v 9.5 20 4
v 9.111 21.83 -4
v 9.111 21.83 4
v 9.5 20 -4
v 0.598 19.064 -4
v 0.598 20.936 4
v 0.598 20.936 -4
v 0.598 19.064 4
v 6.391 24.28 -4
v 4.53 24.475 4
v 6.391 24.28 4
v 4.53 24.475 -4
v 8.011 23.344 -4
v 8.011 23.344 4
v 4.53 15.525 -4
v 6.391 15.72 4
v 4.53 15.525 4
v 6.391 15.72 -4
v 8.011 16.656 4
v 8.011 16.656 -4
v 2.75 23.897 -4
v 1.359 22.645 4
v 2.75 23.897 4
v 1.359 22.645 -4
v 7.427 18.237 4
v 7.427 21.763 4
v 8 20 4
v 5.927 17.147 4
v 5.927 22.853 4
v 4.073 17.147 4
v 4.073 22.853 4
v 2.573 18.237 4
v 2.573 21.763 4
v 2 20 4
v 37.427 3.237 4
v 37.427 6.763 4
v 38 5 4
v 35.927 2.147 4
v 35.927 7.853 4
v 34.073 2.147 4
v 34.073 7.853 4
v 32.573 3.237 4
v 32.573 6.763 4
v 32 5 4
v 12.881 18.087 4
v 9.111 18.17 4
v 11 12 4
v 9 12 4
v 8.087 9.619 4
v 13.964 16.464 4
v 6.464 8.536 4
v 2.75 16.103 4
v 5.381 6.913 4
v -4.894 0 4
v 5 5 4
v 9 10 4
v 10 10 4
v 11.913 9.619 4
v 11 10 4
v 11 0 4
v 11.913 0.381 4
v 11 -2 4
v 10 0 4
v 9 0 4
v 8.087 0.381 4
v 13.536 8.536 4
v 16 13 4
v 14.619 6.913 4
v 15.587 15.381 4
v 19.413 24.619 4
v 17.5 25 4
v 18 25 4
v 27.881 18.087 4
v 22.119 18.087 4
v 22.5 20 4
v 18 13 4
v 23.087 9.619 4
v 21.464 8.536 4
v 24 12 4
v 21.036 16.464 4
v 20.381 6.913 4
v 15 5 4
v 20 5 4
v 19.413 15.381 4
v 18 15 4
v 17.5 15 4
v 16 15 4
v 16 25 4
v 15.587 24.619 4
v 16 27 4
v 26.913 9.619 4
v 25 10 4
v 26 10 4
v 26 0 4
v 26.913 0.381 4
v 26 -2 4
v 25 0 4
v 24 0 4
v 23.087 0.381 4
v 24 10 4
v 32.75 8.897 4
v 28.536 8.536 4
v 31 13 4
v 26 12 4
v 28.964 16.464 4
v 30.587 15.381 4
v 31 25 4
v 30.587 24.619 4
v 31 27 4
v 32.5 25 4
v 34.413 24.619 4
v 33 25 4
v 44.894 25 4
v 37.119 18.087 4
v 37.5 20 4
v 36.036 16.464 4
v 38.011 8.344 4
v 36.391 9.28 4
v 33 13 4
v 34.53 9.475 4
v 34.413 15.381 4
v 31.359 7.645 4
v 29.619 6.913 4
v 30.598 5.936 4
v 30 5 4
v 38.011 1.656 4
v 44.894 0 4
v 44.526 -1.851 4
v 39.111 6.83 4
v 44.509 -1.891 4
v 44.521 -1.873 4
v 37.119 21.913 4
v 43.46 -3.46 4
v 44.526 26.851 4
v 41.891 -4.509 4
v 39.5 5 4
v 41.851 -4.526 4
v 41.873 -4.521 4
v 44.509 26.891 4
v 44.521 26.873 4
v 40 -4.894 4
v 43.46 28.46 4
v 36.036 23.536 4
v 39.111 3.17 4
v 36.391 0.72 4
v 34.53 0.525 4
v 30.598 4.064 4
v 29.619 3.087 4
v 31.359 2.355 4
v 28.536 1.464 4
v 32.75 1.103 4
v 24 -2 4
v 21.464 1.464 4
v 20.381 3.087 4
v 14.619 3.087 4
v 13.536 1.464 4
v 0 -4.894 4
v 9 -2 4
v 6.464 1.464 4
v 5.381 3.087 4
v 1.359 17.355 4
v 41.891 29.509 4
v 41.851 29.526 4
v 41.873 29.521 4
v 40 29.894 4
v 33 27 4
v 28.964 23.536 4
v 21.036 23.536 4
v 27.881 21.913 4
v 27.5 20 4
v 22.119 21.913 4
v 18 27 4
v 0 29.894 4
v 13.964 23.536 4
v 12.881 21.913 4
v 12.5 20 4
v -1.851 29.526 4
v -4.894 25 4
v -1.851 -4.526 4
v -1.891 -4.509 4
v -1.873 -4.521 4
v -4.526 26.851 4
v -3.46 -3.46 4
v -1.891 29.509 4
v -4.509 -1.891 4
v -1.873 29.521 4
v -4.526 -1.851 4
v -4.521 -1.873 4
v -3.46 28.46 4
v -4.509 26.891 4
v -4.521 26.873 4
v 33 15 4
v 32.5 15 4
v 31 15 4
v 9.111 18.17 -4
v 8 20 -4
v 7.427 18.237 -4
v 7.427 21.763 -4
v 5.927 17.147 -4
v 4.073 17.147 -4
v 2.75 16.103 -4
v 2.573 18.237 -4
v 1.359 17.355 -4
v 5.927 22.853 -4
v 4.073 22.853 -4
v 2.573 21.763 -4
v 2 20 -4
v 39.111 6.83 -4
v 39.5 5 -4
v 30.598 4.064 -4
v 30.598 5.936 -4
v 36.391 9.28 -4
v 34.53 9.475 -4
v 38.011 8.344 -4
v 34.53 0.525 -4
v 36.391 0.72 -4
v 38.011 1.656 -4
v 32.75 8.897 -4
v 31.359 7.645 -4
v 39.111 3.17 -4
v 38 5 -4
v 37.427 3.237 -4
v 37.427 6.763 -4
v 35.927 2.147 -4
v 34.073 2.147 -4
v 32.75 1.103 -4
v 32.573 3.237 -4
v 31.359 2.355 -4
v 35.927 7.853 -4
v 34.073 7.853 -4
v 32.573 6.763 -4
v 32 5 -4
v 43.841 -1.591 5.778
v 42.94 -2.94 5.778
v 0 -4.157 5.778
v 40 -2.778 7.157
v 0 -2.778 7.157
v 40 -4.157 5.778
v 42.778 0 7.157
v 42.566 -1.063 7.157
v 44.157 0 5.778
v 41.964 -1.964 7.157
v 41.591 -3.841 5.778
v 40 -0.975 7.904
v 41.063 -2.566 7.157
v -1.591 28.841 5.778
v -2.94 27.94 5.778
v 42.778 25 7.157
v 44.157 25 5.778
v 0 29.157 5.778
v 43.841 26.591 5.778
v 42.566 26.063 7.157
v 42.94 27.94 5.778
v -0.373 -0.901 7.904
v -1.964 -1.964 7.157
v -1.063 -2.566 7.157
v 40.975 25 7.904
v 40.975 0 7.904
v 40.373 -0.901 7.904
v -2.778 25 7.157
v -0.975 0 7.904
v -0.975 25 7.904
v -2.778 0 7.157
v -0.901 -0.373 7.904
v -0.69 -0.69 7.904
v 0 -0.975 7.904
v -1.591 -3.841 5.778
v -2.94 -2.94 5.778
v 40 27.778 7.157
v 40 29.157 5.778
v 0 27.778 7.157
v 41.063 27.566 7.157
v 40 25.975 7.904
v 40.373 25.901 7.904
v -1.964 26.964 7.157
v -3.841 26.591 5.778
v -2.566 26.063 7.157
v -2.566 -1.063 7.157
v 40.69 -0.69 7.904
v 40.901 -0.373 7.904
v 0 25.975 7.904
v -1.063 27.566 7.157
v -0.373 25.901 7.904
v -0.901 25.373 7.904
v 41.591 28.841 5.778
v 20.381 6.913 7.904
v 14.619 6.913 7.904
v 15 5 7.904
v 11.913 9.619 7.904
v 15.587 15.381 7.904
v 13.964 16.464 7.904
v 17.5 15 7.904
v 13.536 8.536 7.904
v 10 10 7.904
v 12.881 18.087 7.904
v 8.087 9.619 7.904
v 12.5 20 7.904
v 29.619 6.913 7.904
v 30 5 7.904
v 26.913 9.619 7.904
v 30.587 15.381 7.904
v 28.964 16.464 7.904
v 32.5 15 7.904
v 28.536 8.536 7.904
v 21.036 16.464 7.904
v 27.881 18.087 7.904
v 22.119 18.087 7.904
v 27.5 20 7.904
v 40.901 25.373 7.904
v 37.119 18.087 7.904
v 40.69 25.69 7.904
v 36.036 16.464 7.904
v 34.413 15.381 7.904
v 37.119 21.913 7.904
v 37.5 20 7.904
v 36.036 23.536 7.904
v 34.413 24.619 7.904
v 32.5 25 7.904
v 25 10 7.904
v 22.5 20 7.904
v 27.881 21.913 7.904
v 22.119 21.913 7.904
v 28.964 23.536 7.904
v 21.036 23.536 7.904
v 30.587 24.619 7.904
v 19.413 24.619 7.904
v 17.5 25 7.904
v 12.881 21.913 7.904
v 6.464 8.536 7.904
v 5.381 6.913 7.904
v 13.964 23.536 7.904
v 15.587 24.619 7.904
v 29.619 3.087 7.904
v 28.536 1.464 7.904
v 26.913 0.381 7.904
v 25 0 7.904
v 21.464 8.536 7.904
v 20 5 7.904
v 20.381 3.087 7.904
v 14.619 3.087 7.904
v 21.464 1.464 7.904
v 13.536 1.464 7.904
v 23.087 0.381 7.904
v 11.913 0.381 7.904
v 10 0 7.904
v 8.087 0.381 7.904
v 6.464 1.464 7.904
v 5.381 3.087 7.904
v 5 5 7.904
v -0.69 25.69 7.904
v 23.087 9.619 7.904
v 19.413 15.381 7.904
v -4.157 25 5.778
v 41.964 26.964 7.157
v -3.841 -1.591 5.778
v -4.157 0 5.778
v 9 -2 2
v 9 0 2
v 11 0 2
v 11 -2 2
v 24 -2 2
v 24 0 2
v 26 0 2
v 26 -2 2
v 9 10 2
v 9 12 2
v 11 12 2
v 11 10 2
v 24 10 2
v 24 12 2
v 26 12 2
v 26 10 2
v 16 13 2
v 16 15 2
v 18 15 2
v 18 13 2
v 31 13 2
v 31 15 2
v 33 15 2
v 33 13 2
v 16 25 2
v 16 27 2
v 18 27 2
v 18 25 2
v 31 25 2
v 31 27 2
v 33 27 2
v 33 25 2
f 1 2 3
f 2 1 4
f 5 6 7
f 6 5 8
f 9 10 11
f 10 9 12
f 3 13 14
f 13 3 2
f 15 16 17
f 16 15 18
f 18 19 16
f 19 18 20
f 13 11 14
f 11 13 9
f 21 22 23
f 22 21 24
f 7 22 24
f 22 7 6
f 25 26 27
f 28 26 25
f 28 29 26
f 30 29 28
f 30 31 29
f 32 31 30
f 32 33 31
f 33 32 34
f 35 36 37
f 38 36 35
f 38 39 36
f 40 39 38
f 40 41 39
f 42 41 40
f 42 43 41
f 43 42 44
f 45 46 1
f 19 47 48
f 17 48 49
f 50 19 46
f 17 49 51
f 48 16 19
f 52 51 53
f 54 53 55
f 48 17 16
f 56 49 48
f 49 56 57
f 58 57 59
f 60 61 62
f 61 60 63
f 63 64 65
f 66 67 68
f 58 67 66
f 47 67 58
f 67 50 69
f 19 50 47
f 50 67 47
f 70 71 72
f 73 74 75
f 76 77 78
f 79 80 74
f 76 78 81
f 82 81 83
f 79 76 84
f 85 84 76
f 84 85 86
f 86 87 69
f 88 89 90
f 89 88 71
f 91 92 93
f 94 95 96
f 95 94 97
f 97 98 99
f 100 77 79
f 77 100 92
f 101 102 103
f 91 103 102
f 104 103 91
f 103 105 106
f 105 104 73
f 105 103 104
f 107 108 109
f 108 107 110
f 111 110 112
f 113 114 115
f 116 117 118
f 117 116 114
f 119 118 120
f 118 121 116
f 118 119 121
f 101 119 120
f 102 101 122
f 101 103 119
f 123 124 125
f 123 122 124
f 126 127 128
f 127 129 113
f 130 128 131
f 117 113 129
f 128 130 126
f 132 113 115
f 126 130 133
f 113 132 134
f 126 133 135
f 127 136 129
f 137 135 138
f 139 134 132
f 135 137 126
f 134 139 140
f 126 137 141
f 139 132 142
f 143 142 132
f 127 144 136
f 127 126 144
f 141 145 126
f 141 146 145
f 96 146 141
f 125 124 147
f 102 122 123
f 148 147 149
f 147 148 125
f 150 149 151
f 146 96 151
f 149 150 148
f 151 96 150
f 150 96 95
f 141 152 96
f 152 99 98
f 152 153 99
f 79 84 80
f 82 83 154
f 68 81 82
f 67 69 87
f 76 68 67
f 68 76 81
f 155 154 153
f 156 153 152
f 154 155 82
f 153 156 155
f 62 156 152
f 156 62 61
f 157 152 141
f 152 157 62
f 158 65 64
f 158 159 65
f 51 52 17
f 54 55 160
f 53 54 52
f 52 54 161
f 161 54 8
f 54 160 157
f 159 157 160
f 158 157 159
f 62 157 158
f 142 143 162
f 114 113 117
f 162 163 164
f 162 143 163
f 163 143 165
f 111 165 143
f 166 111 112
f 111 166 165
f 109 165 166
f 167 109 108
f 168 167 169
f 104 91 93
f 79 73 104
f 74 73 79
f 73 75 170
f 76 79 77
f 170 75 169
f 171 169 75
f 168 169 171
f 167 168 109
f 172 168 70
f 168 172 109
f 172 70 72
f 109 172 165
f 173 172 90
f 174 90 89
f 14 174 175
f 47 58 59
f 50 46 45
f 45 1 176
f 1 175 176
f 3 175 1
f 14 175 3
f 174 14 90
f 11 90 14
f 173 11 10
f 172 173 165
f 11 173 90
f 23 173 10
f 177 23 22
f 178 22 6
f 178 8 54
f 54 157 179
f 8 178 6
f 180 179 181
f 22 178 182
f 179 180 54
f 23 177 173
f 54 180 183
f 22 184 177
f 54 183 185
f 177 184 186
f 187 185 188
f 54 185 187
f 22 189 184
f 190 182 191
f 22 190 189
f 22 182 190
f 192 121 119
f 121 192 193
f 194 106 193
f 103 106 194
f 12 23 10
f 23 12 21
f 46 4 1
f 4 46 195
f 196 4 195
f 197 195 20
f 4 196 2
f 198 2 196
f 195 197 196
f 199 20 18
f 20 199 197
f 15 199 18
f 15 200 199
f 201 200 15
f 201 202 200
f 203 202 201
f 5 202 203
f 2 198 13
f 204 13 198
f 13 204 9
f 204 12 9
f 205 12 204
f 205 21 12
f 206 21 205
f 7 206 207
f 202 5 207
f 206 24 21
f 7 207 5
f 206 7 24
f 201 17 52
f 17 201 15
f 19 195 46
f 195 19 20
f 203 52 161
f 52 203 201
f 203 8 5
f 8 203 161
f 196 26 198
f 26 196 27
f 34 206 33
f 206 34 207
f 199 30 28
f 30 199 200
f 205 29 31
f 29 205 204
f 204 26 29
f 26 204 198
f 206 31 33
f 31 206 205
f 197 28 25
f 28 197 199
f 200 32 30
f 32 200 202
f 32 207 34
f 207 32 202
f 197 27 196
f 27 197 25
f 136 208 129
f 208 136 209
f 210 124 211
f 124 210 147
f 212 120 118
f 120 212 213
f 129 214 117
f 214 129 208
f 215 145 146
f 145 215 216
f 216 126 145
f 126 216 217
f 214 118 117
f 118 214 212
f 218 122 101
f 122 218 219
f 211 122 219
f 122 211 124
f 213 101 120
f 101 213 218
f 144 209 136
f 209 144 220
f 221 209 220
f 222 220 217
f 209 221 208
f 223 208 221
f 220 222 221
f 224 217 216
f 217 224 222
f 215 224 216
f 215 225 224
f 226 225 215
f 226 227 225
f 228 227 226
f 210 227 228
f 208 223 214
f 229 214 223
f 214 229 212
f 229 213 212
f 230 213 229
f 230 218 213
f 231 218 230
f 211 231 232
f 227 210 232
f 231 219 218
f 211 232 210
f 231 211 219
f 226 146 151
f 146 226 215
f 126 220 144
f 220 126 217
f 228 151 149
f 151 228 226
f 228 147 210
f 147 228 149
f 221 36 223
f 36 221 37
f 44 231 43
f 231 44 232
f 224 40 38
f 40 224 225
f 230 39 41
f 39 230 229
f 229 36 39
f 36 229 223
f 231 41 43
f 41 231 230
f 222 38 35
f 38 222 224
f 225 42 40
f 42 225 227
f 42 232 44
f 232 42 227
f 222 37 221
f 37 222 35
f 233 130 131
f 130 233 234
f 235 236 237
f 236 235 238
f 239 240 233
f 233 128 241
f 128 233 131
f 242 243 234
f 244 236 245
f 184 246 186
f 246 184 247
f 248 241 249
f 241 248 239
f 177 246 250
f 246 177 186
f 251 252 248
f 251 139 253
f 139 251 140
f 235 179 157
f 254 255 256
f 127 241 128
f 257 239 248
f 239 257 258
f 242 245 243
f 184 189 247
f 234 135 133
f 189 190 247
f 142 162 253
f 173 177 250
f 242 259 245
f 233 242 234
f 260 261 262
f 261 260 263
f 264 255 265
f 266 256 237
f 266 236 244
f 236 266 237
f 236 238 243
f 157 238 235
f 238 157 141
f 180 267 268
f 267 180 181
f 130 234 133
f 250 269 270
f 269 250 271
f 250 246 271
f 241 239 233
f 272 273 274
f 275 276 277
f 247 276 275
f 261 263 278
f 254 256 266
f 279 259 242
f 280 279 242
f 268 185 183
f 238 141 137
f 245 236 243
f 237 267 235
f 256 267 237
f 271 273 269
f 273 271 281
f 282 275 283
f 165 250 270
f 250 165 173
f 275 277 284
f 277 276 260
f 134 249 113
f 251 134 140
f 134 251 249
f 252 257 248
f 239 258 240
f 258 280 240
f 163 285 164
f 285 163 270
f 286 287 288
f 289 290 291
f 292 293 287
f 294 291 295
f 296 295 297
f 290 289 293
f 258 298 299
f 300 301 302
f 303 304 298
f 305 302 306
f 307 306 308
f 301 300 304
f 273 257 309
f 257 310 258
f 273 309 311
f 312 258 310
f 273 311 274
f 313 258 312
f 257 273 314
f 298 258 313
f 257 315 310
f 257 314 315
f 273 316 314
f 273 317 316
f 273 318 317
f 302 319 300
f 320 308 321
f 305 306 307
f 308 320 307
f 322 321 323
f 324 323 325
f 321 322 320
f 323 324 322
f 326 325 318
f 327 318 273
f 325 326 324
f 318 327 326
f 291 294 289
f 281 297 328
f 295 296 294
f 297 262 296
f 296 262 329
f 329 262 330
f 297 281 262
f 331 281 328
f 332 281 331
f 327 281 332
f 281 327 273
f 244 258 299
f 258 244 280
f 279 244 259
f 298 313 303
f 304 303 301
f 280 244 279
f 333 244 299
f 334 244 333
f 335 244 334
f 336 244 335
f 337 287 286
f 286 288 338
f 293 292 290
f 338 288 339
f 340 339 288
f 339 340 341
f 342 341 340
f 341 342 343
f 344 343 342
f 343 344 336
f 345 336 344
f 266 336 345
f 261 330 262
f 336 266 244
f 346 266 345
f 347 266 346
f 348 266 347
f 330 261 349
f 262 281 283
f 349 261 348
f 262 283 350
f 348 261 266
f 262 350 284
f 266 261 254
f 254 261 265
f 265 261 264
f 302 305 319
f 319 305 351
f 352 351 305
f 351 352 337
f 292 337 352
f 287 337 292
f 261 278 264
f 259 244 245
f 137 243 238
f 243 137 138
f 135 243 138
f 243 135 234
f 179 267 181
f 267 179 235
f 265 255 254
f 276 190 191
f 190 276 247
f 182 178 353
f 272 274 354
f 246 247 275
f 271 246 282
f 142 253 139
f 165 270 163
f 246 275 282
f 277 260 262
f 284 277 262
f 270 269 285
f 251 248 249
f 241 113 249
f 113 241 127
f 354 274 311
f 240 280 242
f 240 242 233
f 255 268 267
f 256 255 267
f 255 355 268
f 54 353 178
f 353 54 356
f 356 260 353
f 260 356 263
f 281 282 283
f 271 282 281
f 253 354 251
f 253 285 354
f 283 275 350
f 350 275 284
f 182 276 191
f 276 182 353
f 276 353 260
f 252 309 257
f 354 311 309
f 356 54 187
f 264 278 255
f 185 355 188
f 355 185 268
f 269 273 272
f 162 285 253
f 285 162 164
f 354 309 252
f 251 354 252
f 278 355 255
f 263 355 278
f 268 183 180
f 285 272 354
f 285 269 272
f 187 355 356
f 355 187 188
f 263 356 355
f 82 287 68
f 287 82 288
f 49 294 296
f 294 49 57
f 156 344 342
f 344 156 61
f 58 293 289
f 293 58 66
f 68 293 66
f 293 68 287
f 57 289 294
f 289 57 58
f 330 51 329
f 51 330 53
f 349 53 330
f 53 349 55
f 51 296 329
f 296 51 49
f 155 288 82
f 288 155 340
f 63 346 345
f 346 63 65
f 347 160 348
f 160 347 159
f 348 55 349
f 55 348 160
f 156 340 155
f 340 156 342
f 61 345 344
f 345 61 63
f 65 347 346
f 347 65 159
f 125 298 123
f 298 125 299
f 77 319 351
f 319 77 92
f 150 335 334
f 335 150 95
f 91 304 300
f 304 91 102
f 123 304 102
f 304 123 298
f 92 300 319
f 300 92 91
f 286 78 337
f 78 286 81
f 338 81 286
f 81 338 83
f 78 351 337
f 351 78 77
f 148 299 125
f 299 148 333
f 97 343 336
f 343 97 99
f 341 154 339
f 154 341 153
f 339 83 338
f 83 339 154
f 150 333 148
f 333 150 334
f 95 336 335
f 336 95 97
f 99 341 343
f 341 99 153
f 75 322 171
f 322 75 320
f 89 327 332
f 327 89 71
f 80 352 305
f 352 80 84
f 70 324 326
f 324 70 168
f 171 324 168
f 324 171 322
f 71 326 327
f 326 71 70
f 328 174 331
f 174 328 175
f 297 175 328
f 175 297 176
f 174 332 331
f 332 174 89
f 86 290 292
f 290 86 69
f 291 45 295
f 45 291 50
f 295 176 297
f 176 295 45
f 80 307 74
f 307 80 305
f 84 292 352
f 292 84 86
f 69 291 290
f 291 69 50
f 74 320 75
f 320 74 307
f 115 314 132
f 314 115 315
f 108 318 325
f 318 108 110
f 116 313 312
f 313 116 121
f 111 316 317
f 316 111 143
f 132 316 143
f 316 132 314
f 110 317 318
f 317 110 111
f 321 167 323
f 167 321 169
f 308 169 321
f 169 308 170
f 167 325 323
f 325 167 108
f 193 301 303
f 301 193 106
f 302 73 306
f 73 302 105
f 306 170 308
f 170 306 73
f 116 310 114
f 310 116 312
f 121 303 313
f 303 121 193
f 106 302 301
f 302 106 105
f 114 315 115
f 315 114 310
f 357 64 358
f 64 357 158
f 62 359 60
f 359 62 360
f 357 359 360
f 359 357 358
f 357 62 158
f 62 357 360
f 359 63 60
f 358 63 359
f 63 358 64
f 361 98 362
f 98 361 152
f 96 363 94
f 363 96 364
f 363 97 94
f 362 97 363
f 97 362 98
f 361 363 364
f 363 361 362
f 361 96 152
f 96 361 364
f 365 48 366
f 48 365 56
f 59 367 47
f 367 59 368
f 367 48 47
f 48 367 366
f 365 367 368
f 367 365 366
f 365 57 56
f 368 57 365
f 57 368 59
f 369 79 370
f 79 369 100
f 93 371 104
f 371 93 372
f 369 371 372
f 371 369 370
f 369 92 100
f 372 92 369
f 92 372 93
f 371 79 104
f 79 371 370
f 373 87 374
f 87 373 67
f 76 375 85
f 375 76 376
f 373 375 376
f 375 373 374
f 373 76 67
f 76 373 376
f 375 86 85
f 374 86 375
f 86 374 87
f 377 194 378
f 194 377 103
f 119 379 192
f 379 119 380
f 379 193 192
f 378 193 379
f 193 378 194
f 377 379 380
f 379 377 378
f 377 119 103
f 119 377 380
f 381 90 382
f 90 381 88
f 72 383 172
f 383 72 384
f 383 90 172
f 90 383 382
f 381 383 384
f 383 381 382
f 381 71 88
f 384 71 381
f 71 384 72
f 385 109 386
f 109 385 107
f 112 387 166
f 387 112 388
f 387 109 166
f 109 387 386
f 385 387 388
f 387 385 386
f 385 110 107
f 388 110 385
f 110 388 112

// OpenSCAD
// file: threaded_insert.scad
// Threaded Insert 
difference() {
    cylinder(h=8, r=4.5);
    cylinder(h=9, r=3);
}
// main file
// main plate

translate([5, 20, -4]) {
    include <threaded_insert.scad>;
}

translate([35, 5, -4]) {
    include <threaded_insert.scad>;
}

difference() {
    minkowski() {
        sphere(r=5);
        cube([40, 25, 3]);
        
    }
    translate([-10, -10, -30]) cube([500, 500, 34]);
    
    translate([10, 5, -1]) cylinder(h=15, r=5);
    translate([25, 5, -1]) cylinder(h=15, r=5);
    
    // trip up / down buttons
    translate([17.5, 20, -1]) cylinder(h=15, r=5);
    translate([32.5, 20, -1]) cylinder(h=51, r=5);
}
translate([-5, -5, 2]) {
    translate([0, 3, 0]) {
        translate([14, 0, 0]) cube([2,2,2]);
        translate([29, 0, 0]) cube([2,2,2]);
    }
    
    translate([0, 15, 0]) {
        translate([14, 0, 0]) cube([2,2,2]);
        translate([29, 0, 0]) cube([2,2,2]);
    }
    
    translate([0, 18, 0]) {
        translate([21, 0, 0]) cube([2,2,2]);
        translate([36, 0, 0]) cube([2,2,2]);
    }
    
    translate([0, 30, 0]) {
        translate([21, 0, 0]) cube([2,2,2]);
        translate([36, 0, 0]) cube([2,2,2]);
    }
}
